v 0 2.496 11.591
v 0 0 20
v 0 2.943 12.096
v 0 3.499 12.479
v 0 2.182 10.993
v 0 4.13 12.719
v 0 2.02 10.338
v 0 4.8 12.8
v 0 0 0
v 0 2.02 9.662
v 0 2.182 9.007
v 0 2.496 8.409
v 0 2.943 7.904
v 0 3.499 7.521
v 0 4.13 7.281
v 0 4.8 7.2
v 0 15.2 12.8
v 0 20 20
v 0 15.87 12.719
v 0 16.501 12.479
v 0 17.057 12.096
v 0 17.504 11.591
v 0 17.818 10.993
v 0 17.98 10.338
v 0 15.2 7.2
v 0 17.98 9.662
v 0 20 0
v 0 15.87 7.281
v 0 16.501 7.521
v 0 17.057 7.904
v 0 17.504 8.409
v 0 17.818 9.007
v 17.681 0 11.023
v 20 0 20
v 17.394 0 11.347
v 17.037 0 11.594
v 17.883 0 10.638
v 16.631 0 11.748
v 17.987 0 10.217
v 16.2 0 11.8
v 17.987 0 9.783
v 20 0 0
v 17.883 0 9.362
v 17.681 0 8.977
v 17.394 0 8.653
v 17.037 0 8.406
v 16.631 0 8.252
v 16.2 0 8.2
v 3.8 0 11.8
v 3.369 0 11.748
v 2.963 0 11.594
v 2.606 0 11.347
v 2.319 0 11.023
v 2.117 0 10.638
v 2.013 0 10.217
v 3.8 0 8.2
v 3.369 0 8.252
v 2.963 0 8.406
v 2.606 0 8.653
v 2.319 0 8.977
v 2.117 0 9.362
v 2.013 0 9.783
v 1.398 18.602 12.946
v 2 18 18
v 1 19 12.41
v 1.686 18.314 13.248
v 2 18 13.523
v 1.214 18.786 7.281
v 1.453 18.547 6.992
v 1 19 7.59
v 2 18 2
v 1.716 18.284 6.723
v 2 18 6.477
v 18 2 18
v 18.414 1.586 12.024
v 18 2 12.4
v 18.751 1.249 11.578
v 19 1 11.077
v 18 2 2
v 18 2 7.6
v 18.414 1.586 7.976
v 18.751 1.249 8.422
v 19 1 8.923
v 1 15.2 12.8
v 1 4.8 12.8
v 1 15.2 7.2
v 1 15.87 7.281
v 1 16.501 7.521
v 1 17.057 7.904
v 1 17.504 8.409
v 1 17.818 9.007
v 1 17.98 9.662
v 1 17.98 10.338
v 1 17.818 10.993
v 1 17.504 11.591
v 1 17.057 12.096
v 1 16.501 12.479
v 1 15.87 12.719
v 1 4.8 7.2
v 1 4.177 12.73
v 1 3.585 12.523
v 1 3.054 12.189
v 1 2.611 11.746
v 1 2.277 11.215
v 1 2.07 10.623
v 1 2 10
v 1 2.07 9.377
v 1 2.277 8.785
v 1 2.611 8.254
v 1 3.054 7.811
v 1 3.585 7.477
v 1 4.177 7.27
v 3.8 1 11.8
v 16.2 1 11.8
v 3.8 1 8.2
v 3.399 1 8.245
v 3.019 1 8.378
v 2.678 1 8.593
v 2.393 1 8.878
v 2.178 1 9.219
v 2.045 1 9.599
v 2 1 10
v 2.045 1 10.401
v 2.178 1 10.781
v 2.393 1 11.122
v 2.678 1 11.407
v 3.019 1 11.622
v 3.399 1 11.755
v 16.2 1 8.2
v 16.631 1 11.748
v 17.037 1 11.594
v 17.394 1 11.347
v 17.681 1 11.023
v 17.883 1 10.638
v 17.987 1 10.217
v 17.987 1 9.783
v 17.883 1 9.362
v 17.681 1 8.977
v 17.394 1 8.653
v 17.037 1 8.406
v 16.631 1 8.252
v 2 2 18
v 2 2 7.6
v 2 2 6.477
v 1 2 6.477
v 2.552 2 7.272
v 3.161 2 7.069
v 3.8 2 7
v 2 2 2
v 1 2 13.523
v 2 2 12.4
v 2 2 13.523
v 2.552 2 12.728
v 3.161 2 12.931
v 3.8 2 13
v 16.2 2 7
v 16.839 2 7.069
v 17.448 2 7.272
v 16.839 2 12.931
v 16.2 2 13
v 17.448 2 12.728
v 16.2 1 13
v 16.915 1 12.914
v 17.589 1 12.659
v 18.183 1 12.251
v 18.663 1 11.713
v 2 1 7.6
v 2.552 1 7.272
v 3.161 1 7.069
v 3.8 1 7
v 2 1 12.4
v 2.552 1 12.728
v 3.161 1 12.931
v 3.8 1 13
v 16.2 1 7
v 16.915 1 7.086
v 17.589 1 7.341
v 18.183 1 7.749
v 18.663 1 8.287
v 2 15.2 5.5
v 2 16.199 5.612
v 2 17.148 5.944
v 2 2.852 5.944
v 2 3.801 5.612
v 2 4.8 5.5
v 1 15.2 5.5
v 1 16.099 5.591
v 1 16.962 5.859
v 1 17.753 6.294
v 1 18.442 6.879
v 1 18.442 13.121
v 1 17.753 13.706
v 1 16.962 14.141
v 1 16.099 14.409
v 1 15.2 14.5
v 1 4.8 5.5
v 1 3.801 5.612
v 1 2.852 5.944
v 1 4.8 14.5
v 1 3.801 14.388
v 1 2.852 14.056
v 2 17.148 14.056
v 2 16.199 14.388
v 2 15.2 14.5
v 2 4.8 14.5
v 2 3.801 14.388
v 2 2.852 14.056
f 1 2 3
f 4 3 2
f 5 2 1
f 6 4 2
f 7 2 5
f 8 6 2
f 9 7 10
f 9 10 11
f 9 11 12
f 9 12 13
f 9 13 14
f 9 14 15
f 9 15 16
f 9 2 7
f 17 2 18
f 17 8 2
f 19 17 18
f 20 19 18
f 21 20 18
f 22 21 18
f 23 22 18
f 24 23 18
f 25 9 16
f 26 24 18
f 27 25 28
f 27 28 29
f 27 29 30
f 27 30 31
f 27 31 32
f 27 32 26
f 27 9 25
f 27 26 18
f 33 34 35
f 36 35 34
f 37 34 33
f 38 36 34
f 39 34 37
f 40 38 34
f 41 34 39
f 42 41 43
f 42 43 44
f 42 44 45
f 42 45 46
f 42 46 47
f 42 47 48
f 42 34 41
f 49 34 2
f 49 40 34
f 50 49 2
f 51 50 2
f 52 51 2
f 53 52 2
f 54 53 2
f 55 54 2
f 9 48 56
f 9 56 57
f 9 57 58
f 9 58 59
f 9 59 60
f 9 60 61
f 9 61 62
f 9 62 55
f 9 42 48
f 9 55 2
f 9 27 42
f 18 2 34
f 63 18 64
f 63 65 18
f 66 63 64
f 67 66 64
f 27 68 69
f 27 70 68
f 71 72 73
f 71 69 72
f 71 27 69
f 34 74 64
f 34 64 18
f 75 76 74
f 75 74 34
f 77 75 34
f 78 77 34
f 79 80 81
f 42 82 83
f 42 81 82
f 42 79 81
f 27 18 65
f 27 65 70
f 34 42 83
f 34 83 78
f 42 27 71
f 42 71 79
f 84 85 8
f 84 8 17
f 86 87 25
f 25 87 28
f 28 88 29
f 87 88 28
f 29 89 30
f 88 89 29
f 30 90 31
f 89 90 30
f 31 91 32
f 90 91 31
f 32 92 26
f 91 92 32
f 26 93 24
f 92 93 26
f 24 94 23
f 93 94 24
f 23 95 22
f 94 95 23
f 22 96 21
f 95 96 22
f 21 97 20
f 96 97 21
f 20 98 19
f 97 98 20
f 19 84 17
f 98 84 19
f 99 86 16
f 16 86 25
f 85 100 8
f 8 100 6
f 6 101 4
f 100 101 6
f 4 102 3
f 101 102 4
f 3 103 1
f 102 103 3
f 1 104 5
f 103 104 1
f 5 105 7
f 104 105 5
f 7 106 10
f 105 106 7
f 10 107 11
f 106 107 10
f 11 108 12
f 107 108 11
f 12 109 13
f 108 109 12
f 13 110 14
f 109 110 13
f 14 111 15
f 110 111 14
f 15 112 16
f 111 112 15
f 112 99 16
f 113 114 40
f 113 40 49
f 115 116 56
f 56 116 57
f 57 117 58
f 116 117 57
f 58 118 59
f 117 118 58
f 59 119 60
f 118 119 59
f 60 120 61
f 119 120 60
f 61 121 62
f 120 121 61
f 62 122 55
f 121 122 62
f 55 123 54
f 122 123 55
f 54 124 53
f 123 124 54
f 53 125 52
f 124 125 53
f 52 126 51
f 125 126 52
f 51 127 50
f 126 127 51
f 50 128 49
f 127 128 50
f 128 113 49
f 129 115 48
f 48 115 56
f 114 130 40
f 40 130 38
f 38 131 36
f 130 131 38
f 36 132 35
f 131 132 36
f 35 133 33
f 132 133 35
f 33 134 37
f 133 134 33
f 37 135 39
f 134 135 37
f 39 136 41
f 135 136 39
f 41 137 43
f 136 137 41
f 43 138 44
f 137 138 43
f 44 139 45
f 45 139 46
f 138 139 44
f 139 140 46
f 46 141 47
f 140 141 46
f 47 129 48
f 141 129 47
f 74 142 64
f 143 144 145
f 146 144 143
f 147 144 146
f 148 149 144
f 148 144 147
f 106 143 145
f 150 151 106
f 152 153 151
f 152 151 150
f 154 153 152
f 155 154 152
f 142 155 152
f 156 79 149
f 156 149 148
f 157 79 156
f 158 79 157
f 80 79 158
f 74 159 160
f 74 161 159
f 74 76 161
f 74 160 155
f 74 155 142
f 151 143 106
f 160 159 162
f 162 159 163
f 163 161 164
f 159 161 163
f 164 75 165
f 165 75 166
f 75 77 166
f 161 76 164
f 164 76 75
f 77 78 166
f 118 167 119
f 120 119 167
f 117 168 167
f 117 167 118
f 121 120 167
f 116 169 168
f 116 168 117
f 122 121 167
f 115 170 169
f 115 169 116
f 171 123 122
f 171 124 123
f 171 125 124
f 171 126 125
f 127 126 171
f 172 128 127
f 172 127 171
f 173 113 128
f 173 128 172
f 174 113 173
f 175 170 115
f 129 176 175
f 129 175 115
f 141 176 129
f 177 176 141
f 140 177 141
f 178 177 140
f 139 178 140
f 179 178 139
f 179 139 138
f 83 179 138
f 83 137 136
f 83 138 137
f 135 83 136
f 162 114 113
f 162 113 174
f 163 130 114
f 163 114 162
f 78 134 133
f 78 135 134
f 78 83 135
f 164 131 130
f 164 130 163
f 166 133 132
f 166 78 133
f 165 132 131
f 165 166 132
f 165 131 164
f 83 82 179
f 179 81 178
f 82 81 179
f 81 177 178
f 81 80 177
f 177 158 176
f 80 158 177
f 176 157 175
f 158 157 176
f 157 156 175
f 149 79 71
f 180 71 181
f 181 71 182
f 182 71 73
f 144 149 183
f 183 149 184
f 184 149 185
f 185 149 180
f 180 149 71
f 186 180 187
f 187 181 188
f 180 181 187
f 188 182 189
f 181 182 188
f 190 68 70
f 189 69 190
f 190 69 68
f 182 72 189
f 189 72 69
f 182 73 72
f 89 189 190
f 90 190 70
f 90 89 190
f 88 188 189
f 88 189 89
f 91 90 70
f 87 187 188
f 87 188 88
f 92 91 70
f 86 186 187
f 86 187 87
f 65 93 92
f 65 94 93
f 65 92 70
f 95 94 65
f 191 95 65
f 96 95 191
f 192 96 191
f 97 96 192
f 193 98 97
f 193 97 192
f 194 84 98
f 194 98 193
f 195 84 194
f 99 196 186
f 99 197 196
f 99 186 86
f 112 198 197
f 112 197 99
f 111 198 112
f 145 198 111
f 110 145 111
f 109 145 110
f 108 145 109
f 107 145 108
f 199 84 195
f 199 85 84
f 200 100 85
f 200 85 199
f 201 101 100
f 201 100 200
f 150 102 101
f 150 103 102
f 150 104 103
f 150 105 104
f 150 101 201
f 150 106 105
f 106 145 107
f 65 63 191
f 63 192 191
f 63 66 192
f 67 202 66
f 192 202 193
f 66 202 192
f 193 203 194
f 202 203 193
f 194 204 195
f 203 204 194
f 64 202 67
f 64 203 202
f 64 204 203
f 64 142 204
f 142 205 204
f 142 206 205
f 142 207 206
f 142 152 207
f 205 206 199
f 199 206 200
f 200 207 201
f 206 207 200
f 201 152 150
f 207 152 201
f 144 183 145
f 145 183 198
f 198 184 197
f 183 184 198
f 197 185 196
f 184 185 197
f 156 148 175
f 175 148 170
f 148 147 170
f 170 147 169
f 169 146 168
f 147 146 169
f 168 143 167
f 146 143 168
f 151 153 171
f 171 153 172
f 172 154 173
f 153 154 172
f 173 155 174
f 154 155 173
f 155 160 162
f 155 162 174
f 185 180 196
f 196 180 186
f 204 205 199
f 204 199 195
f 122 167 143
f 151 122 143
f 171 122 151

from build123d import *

# Parameters (mm, degrees)
PAD_DEPTH            = 20
SKETCH001_W          = 18
SKETCH001_H          = 16
POCKET_DEPTH         = 18.001
POCKET001_DEPTH      = 2.001
POCKET002_DEPTH      = 1
POCKET002_DEPTH_BACK = -5
POCKET003_DEPTH      = 2.001
POCKET004_DEPTH      = 1


with BuildPart() as part:
    # Sketch → Pad (new body)
    with BuildSketch(Plane.XY):
        Polygon((0, 0), (0, 20), (20, 0), align=None)
    extrude(amount=PAD_DEPTH)

    # Sketch001 → Pocket (cut, through all)
    with BuildSketch(Plane.XZ.offset(-2)):
        with Locations((11, 10)):
            Rectangle(SKETCH001_W, SKETCH001_H)
    extrude(amount=-POCKET_DEPTH, mode=Mode.SUBTRACT)

    # Sketch002 (on Face9 of Pocket) → Pocket001 (cut, through all)
    with BuildSketch(Plane.YZ.offset(2)):
        with BuildLine():
            ThreePointArc((4.8, 12.8), (2, 10), (4.8, 7.2))
            Line((4.8, 7.2), (15.2, 7.2))
            ThreePointArc((15.2, 7.2), (18, 10), (15.2, 12.8))
            Line((4.8, 12.8), (15.2, 12.8))
        make_face()
    extrude(amount=-POCKET001_DEPTH, mode=Mode.SUBTRACT)

    # Sketch003 (on Face13 of Pocket001) → Pocket002 (cut, two sides)
    with BuildSketch(Plane.YZ.offset(2)) as pocket002_sk:
        with BuildLine():
            ThreePointArc((15.2, 5.5), (19.7, 10), (15.2, 14.5))
            Line((4.8, 14.5), (15.2, 14.5))
            ThreePointArc((4.8, 14.5), (3.317186, 14.248678), (2, 13.522783))
            Line((2, 13.522783), (2, 6.477217))
            ThreePointArc((2, 6.477217), (3.317186, 5.751322), (4.8, 5.5))
            Line((4.8, 5.5), (15.2, 5.5))
        make_face()
    extrude(amount=-POCKET002_DEPTH, mode=Mode.SUBTRACT)
    extrude(pocket002_sk.sketch, amount=-POCKET002_DEPTH_BACK, mode=Mode.SUBTRACT)

    # Sketch004 (on Face21 of Pocket002) → Pocket003 (cut, through all)
    with BuildSketch(Plane(origin=(0, 2, 0), x_dir=(-1, 0, 0), z_dir=(0, 1, 0))):
        with BuildLine():
            ThreePointArc((-16.2, 11.8), (-18, 10), (-16.2, 8.2))
            Line((-16.2, 8.2), (-3.8, 8.2))
            ThreePointArc((-3.8, 8.2), (-2, 10), (-3.8, 11.8))
            Line((-16.2, 11.8), (-3.8, 11.8))
        make_face()
    extrude(amount=-POCKET003_DEPTH, mode=Mode.SUBTRACT)

    # Sketch005 (on Face15 of Pocket003) → Pocket004 (cut)
    with BuildSketch(Plane(origin=(0, 2, 0), x_dir=(-1, 0, 0), z_dir=(0, 1, 0))):
        with BuildLine():
            ThreePointArc((-16.2, 13), (-19.2, 10), (-16.2, 7))
            Line((-16.2, 7), (-3.8, 7))
            ThreePointArc((-3.8, 7), (-2.851317, 7.15395), (-2, 7.6))
            Line((-2, 12.4), (-2, 7.6))
            ThreePointArc((-2, 12.4), (-2.851317, 12.84605), (-3.8, 13))
            Line((-16.2, 13), (-3.8, 13))
        make_face()
    extrude(amount=-POCKET004_DEPTH, mode=Mode.SUBTRACT)


solid = part.part
